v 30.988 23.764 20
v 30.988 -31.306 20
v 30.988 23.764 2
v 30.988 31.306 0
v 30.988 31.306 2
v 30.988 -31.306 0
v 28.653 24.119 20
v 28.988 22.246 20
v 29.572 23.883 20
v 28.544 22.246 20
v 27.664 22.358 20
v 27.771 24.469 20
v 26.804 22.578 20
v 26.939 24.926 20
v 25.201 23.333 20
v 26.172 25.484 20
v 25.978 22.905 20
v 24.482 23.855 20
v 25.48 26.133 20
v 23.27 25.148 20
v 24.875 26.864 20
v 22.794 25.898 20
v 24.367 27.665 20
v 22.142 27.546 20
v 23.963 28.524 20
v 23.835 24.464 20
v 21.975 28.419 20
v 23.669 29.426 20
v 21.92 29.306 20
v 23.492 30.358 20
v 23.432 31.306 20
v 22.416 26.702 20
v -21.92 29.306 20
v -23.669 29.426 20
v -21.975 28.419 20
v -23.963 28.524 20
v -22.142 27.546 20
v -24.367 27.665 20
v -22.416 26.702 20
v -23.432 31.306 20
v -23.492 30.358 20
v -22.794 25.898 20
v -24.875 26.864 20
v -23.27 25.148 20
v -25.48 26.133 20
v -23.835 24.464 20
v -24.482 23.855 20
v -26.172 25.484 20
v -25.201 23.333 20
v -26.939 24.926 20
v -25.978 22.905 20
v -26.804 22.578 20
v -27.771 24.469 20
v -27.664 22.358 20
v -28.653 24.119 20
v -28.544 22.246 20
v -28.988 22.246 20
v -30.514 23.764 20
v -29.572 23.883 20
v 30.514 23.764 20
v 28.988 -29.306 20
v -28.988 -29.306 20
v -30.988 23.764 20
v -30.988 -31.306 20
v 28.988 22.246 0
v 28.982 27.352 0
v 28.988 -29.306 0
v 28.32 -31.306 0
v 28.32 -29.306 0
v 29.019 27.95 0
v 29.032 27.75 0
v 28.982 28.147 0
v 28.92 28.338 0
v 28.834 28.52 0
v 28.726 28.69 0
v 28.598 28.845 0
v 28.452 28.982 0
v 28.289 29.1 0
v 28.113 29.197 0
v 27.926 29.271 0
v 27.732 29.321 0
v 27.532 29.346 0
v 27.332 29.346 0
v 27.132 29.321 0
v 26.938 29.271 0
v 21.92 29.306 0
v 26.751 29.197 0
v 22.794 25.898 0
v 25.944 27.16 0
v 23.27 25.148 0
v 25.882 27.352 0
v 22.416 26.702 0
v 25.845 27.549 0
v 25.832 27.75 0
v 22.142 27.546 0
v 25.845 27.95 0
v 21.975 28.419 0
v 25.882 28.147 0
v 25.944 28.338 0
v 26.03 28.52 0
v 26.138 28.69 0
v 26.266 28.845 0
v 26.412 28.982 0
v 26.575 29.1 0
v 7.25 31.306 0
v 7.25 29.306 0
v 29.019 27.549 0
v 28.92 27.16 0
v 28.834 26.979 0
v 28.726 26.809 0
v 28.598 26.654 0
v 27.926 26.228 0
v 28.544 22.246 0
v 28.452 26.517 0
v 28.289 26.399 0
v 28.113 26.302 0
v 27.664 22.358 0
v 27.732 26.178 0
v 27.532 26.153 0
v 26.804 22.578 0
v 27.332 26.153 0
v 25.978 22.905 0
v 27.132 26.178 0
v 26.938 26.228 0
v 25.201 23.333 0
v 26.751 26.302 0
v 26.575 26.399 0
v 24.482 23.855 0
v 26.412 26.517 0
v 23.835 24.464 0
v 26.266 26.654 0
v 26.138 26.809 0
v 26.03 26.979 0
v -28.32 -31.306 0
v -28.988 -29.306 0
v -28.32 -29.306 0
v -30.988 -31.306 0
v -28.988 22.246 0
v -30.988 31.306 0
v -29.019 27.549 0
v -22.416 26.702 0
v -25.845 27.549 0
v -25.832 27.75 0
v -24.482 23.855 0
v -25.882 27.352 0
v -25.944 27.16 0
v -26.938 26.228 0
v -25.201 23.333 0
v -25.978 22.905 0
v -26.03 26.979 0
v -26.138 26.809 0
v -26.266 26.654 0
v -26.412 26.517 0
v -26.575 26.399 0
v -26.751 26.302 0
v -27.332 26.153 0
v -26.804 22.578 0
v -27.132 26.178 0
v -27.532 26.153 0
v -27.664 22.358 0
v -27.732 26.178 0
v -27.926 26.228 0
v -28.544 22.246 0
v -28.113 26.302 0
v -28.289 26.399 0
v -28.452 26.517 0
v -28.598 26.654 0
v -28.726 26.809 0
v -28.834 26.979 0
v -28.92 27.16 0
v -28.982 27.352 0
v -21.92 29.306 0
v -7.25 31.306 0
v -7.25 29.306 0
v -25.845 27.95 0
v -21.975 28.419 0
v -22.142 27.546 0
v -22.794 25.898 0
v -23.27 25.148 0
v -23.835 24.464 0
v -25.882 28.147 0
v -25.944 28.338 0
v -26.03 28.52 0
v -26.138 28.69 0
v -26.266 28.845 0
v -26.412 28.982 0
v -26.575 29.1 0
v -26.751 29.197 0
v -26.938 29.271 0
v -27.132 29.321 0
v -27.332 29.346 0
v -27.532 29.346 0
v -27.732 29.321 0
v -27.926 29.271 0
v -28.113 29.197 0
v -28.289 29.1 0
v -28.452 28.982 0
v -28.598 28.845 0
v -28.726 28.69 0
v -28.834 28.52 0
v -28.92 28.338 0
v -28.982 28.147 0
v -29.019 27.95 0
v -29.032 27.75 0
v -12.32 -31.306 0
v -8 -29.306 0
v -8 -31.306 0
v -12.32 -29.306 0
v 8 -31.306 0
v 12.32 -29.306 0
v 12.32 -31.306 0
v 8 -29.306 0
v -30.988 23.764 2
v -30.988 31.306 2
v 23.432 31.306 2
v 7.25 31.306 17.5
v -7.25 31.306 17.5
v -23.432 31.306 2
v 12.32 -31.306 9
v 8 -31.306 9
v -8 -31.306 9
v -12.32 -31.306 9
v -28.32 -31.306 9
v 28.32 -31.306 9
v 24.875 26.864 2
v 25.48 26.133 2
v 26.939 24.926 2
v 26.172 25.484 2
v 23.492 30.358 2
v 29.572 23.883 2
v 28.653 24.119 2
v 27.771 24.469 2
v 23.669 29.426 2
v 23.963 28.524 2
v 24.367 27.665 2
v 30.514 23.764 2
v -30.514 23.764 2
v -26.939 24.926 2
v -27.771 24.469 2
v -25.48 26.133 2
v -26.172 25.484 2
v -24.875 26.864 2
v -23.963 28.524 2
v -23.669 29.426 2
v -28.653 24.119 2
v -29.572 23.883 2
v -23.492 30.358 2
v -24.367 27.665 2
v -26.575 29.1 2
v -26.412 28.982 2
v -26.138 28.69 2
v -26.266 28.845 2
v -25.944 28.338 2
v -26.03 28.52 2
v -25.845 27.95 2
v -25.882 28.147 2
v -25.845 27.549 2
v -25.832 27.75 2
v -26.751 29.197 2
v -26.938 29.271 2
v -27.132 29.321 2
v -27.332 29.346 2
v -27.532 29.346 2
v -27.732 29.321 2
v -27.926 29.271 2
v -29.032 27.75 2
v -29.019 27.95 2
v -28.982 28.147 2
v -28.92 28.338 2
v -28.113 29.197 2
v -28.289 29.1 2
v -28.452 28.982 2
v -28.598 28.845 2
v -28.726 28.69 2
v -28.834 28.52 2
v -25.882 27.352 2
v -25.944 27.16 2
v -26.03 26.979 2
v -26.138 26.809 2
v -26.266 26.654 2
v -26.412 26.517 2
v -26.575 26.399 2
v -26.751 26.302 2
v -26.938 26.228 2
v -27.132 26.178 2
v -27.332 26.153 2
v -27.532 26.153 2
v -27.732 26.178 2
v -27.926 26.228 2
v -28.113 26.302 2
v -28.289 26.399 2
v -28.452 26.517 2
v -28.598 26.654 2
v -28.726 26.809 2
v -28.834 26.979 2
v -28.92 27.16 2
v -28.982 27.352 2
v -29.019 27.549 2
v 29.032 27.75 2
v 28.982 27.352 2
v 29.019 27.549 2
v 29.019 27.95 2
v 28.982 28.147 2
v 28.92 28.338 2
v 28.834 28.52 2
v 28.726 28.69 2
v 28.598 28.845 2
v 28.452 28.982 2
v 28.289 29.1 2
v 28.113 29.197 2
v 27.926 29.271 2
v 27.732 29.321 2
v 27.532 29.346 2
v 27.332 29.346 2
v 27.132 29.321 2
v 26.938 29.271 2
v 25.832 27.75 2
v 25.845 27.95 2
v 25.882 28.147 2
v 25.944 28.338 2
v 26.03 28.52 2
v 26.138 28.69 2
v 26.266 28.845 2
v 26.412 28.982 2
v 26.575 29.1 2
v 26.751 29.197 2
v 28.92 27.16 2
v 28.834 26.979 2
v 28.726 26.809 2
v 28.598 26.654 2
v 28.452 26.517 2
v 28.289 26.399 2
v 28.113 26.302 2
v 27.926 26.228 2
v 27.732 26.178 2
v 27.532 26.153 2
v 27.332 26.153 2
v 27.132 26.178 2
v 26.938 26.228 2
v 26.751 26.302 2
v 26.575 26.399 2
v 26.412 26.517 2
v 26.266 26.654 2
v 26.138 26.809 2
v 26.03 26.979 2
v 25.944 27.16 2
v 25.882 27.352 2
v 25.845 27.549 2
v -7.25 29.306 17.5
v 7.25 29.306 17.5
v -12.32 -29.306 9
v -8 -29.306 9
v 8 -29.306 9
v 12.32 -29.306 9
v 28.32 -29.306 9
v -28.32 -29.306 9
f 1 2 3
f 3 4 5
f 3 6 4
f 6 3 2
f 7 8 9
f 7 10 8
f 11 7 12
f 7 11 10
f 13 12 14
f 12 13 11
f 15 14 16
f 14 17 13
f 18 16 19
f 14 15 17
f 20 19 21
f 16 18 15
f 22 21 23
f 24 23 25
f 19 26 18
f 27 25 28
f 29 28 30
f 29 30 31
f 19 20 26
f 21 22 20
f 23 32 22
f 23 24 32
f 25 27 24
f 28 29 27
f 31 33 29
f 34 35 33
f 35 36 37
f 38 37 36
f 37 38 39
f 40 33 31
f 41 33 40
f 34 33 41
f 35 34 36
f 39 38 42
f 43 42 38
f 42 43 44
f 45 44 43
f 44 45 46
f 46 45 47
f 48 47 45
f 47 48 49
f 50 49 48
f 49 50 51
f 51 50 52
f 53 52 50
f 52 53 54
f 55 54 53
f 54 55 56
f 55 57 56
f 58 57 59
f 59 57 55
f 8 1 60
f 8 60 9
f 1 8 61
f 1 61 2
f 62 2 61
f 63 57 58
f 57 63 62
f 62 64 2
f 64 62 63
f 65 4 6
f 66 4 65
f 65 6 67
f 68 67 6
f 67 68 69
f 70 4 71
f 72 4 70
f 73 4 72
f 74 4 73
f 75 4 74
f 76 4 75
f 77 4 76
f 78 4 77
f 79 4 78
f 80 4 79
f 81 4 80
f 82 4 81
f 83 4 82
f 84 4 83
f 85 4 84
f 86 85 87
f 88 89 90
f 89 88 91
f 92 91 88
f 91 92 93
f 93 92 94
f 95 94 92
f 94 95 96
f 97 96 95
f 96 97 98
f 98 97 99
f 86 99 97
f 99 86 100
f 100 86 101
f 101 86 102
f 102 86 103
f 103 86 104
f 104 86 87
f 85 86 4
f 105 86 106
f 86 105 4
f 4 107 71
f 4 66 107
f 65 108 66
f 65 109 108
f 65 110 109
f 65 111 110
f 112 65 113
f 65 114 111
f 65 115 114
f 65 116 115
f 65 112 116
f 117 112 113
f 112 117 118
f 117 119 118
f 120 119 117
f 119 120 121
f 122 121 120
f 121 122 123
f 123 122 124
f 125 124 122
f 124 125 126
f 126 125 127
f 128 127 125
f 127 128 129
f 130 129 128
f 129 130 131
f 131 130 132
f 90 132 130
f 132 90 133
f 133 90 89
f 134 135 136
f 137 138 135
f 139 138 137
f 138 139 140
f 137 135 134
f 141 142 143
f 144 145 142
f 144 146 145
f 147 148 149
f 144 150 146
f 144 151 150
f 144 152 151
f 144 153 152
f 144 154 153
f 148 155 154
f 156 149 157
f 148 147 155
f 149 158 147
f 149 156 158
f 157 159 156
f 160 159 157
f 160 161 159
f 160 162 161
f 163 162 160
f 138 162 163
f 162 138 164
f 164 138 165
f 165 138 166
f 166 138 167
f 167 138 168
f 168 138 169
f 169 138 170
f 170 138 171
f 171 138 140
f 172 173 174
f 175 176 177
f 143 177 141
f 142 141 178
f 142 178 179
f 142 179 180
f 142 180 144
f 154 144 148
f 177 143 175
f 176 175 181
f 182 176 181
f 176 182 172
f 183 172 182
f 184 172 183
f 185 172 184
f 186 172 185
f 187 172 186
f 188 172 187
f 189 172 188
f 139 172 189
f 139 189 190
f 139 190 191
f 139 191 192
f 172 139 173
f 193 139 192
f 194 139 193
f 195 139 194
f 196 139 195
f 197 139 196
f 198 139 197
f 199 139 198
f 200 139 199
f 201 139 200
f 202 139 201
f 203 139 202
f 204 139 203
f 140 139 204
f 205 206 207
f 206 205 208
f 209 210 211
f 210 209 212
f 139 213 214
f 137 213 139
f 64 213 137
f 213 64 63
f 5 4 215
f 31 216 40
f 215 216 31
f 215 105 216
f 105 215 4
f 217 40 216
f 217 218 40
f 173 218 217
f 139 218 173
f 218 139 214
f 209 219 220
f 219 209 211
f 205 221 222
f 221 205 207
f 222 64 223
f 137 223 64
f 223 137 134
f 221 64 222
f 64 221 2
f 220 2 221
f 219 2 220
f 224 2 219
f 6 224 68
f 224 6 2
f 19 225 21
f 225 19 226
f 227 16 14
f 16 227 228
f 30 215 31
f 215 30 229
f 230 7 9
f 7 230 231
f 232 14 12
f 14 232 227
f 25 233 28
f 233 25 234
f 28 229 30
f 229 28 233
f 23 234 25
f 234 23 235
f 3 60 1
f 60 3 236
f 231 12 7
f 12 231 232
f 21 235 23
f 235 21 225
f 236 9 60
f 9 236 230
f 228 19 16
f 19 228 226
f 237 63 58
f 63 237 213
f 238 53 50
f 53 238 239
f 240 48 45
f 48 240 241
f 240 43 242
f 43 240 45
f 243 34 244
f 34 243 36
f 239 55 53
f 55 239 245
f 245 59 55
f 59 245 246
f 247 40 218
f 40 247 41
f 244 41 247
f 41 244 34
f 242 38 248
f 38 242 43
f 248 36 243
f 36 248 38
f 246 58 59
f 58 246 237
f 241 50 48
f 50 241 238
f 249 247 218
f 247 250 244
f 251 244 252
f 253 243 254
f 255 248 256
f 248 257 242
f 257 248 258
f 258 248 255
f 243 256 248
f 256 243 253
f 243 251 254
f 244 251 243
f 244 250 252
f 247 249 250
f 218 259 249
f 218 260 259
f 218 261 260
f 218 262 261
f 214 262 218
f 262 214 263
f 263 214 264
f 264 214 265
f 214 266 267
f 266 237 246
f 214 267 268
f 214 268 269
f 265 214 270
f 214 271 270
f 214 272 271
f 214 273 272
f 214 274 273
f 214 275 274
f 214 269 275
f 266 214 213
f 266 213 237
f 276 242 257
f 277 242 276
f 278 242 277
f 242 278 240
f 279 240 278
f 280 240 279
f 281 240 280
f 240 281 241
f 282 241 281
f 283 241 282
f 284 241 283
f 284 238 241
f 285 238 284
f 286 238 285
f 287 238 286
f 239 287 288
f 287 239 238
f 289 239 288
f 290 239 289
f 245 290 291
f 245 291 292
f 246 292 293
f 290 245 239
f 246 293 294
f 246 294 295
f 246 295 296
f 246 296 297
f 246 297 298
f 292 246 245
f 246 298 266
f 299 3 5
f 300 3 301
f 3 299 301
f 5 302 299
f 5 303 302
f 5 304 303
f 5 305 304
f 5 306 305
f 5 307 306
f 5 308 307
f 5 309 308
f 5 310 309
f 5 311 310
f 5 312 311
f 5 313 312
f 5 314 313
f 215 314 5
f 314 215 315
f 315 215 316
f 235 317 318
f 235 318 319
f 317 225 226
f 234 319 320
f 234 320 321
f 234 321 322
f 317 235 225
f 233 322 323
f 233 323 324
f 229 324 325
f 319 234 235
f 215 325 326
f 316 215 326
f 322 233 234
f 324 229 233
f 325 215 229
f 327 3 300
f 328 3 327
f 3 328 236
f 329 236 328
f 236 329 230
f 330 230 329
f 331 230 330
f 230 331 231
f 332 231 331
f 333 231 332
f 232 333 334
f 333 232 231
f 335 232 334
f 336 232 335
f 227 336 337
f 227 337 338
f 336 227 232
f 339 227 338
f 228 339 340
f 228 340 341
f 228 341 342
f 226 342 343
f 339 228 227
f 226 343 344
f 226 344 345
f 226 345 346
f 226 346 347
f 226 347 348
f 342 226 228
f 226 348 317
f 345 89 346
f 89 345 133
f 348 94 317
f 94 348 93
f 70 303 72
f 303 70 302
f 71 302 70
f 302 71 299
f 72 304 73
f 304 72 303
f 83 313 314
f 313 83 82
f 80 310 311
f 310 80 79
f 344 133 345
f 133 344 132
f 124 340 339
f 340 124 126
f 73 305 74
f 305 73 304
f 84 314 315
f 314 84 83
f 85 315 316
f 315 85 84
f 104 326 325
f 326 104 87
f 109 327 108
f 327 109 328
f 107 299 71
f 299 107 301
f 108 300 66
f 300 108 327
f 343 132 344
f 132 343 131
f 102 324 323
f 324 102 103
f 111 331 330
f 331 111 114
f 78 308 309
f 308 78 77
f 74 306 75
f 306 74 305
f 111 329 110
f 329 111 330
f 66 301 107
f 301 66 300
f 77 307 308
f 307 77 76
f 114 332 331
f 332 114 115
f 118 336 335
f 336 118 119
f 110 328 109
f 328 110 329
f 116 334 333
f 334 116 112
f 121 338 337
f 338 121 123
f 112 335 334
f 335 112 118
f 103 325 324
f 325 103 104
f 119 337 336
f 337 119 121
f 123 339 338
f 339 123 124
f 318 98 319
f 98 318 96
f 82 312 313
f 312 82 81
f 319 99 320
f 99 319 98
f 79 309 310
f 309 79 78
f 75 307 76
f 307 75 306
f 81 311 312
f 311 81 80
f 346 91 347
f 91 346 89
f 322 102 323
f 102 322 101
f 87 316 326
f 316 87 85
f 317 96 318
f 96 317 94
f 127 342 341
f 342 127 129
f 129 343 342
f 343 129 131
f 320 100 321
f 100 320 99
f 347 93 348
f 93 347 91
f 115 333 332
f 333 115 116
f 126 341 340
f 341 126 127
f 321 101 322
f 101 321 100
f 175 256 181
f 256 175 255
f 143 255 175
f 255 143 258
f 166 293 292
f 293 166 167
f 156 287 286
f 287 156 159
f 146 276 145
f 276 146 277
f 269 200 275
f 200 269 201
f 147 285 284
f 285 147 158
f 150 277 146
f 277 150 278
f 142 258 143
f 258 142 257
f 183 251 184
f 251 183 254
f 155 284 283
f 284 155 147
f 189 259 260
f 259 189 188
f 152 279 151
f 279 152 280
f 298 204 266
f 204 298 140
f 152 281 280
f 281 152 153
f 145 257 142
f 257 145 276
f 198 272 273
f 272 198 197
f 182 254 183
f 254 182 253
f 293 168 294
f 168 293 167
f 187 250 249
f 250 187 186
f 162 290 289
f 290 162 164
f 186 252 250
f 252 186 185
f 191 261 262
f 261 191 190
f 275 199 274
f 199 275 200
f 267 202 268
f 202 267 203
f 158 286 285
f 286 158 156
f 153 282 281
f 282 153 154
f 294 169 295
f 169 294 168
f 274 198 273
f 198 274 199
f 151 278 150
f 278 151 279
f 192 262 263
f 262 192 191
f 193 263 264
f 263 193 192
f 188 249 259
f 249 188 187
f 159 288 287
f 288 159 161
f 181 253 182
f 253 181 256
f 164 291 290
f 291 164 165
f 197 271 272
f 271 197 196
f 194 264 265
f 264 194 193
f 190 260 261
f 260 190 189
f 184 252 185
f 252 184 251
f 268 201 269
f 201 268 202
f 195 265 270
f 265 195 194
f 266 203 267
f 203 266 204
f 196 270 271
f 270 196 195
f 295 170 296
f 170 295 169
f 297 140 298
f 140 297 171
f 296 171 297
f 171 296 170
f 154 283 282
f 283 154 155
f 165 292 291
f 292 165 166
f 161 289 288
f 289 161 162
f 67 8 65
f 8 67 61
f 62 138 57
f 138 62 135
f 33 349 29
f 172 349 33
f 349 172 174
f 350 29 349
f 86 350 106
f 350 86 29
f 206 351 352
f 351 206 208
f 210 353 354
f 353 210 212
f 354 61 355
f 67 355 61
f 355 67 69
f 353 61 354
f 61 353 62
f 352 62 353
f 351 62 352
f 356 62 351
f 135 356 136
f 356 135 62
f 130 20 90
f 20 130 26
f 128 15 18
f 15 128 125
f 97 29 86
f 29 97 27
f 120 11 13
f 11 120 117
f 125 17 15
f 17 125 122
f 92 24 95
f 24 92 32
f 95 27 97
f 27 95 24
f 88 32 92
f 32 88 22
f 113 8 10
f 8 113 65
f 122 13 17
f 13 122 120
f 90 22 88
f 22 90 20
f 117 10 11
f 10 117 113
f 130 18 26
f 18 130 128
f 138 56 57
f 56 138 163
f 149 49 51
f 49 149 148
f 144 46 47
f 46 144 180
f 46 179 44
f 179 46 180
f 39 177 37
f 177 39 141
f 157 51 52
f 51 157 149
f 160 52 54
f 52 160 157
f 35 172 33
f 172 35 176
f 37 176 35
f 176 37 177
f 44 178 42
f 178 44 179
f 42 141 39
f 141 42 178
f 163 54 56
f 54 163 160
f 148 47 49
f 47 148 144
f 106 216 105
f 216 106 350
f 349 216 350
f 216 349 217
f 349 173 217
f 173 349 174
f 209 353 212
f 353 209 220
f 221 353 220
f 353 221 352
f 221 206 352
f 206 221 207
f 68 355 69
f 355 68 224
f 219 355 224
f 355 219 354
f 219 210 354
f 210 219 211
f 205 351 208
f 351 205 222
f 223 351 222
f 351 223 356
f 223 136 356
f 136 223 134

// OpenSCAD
$fn = 50;
pcb_width = 61.976;
pcb_height = 62.611;
housing_height = 20;
housing_thickness = 2;
mounting_hole_inset = 3.556;
mounting_hole_keepout = 4;
mounting_hole_diameter = 3.2;
bnc_width = 14.5;
bnc_height = 17.5;
snap_hole_width = 16;
snap_hole_height = 9;
snap_hole_separation = 20.32;
module volume()
{
    difference()
    {
        cube([pcb_width, pcb_height, housing_height]);
        //translate([0,0,0]) cylinder(r=mounting_hole_inset+mounting_hole_keepout, h=housing_height);
        //translate([pcb_width,0,0]) cylinder(r=mounting_hole_inset+mounting_hole_keepout, h=housing_height);
        translate([pcb_width,pcb_height,0]) cylinder(r=mounting_hole_inset+mounting_hole_keepout, h=housing_height);
        translate([0,pcb_height,0]) cylinder(r=mounting_hole_inset+mounting_hole_keepout, h=housing_height);
    }
}

x_scale_ratio = 1 - 2*housing_thickness/pcb_width;
y_scale_ratio = 1 - 2*housing_thickness/pcb_height;
difference()
{
    union()
    {
        translate([-pcb_width/2, -pcb_height/2, 0])
        {
            volume();
            difference()
            {
                cube([pcb_width, pcb_height, housing_thickness]);
                translate([mounting_hole_inset,mounting_hole_inset,0]) cylinder(r=mounting_hole_diameter/2, h=housing_height);
                translate([pcb_width-mounting_hole_inset,mounting_hole_inset,0]) cylinder(r=mounting_hole_diameter/2, h=housing_height);
                translate([pcb_width-mounting_hole_inset,pcb_height-mounting_hole_inset,0]) cylinder(r=mounting_hole_diameter/2, h=housing_height);
                translate([mounting_hole_inset,pcb_height-mounting_hole_inset,0]) cylinder(r=mounting_hole_diameter/2, h=housing_height);
            }
        }
    }
    scale([x_scale_ratio,y_scale_ratio,1])
    {
        translate([-pcb_width/2, -pcb_height/2]) volume() volume();
    }
    translate([0,pcb_height/2, bnc_height/2]) cube([bnc_width, pcb_height/2, bnc_height], center=true);
    translate([0,-pcb_height/2, snap_hole_height/2]) cube([snap_hole_width, pcb_height/2, snap_hole_height], center=true);
    translate([snap_hole_separation,-pcb_height/2, snap_hole_height/2]) cube([snap_hole_width, pcb_height/2, snap_hole_height], center=true);
        translate([-snap_hole_separation,-pcb_height/2, snap_hole_height/2]) cube([snap_hole_width, pcb_height/2, snap_hole_height], center=true);
    translate([0,-pcb_height/2, snap_hole_height/2]) cube([snap_hole_width, pcb_height/2, snap_hole_height], center=true);
}
